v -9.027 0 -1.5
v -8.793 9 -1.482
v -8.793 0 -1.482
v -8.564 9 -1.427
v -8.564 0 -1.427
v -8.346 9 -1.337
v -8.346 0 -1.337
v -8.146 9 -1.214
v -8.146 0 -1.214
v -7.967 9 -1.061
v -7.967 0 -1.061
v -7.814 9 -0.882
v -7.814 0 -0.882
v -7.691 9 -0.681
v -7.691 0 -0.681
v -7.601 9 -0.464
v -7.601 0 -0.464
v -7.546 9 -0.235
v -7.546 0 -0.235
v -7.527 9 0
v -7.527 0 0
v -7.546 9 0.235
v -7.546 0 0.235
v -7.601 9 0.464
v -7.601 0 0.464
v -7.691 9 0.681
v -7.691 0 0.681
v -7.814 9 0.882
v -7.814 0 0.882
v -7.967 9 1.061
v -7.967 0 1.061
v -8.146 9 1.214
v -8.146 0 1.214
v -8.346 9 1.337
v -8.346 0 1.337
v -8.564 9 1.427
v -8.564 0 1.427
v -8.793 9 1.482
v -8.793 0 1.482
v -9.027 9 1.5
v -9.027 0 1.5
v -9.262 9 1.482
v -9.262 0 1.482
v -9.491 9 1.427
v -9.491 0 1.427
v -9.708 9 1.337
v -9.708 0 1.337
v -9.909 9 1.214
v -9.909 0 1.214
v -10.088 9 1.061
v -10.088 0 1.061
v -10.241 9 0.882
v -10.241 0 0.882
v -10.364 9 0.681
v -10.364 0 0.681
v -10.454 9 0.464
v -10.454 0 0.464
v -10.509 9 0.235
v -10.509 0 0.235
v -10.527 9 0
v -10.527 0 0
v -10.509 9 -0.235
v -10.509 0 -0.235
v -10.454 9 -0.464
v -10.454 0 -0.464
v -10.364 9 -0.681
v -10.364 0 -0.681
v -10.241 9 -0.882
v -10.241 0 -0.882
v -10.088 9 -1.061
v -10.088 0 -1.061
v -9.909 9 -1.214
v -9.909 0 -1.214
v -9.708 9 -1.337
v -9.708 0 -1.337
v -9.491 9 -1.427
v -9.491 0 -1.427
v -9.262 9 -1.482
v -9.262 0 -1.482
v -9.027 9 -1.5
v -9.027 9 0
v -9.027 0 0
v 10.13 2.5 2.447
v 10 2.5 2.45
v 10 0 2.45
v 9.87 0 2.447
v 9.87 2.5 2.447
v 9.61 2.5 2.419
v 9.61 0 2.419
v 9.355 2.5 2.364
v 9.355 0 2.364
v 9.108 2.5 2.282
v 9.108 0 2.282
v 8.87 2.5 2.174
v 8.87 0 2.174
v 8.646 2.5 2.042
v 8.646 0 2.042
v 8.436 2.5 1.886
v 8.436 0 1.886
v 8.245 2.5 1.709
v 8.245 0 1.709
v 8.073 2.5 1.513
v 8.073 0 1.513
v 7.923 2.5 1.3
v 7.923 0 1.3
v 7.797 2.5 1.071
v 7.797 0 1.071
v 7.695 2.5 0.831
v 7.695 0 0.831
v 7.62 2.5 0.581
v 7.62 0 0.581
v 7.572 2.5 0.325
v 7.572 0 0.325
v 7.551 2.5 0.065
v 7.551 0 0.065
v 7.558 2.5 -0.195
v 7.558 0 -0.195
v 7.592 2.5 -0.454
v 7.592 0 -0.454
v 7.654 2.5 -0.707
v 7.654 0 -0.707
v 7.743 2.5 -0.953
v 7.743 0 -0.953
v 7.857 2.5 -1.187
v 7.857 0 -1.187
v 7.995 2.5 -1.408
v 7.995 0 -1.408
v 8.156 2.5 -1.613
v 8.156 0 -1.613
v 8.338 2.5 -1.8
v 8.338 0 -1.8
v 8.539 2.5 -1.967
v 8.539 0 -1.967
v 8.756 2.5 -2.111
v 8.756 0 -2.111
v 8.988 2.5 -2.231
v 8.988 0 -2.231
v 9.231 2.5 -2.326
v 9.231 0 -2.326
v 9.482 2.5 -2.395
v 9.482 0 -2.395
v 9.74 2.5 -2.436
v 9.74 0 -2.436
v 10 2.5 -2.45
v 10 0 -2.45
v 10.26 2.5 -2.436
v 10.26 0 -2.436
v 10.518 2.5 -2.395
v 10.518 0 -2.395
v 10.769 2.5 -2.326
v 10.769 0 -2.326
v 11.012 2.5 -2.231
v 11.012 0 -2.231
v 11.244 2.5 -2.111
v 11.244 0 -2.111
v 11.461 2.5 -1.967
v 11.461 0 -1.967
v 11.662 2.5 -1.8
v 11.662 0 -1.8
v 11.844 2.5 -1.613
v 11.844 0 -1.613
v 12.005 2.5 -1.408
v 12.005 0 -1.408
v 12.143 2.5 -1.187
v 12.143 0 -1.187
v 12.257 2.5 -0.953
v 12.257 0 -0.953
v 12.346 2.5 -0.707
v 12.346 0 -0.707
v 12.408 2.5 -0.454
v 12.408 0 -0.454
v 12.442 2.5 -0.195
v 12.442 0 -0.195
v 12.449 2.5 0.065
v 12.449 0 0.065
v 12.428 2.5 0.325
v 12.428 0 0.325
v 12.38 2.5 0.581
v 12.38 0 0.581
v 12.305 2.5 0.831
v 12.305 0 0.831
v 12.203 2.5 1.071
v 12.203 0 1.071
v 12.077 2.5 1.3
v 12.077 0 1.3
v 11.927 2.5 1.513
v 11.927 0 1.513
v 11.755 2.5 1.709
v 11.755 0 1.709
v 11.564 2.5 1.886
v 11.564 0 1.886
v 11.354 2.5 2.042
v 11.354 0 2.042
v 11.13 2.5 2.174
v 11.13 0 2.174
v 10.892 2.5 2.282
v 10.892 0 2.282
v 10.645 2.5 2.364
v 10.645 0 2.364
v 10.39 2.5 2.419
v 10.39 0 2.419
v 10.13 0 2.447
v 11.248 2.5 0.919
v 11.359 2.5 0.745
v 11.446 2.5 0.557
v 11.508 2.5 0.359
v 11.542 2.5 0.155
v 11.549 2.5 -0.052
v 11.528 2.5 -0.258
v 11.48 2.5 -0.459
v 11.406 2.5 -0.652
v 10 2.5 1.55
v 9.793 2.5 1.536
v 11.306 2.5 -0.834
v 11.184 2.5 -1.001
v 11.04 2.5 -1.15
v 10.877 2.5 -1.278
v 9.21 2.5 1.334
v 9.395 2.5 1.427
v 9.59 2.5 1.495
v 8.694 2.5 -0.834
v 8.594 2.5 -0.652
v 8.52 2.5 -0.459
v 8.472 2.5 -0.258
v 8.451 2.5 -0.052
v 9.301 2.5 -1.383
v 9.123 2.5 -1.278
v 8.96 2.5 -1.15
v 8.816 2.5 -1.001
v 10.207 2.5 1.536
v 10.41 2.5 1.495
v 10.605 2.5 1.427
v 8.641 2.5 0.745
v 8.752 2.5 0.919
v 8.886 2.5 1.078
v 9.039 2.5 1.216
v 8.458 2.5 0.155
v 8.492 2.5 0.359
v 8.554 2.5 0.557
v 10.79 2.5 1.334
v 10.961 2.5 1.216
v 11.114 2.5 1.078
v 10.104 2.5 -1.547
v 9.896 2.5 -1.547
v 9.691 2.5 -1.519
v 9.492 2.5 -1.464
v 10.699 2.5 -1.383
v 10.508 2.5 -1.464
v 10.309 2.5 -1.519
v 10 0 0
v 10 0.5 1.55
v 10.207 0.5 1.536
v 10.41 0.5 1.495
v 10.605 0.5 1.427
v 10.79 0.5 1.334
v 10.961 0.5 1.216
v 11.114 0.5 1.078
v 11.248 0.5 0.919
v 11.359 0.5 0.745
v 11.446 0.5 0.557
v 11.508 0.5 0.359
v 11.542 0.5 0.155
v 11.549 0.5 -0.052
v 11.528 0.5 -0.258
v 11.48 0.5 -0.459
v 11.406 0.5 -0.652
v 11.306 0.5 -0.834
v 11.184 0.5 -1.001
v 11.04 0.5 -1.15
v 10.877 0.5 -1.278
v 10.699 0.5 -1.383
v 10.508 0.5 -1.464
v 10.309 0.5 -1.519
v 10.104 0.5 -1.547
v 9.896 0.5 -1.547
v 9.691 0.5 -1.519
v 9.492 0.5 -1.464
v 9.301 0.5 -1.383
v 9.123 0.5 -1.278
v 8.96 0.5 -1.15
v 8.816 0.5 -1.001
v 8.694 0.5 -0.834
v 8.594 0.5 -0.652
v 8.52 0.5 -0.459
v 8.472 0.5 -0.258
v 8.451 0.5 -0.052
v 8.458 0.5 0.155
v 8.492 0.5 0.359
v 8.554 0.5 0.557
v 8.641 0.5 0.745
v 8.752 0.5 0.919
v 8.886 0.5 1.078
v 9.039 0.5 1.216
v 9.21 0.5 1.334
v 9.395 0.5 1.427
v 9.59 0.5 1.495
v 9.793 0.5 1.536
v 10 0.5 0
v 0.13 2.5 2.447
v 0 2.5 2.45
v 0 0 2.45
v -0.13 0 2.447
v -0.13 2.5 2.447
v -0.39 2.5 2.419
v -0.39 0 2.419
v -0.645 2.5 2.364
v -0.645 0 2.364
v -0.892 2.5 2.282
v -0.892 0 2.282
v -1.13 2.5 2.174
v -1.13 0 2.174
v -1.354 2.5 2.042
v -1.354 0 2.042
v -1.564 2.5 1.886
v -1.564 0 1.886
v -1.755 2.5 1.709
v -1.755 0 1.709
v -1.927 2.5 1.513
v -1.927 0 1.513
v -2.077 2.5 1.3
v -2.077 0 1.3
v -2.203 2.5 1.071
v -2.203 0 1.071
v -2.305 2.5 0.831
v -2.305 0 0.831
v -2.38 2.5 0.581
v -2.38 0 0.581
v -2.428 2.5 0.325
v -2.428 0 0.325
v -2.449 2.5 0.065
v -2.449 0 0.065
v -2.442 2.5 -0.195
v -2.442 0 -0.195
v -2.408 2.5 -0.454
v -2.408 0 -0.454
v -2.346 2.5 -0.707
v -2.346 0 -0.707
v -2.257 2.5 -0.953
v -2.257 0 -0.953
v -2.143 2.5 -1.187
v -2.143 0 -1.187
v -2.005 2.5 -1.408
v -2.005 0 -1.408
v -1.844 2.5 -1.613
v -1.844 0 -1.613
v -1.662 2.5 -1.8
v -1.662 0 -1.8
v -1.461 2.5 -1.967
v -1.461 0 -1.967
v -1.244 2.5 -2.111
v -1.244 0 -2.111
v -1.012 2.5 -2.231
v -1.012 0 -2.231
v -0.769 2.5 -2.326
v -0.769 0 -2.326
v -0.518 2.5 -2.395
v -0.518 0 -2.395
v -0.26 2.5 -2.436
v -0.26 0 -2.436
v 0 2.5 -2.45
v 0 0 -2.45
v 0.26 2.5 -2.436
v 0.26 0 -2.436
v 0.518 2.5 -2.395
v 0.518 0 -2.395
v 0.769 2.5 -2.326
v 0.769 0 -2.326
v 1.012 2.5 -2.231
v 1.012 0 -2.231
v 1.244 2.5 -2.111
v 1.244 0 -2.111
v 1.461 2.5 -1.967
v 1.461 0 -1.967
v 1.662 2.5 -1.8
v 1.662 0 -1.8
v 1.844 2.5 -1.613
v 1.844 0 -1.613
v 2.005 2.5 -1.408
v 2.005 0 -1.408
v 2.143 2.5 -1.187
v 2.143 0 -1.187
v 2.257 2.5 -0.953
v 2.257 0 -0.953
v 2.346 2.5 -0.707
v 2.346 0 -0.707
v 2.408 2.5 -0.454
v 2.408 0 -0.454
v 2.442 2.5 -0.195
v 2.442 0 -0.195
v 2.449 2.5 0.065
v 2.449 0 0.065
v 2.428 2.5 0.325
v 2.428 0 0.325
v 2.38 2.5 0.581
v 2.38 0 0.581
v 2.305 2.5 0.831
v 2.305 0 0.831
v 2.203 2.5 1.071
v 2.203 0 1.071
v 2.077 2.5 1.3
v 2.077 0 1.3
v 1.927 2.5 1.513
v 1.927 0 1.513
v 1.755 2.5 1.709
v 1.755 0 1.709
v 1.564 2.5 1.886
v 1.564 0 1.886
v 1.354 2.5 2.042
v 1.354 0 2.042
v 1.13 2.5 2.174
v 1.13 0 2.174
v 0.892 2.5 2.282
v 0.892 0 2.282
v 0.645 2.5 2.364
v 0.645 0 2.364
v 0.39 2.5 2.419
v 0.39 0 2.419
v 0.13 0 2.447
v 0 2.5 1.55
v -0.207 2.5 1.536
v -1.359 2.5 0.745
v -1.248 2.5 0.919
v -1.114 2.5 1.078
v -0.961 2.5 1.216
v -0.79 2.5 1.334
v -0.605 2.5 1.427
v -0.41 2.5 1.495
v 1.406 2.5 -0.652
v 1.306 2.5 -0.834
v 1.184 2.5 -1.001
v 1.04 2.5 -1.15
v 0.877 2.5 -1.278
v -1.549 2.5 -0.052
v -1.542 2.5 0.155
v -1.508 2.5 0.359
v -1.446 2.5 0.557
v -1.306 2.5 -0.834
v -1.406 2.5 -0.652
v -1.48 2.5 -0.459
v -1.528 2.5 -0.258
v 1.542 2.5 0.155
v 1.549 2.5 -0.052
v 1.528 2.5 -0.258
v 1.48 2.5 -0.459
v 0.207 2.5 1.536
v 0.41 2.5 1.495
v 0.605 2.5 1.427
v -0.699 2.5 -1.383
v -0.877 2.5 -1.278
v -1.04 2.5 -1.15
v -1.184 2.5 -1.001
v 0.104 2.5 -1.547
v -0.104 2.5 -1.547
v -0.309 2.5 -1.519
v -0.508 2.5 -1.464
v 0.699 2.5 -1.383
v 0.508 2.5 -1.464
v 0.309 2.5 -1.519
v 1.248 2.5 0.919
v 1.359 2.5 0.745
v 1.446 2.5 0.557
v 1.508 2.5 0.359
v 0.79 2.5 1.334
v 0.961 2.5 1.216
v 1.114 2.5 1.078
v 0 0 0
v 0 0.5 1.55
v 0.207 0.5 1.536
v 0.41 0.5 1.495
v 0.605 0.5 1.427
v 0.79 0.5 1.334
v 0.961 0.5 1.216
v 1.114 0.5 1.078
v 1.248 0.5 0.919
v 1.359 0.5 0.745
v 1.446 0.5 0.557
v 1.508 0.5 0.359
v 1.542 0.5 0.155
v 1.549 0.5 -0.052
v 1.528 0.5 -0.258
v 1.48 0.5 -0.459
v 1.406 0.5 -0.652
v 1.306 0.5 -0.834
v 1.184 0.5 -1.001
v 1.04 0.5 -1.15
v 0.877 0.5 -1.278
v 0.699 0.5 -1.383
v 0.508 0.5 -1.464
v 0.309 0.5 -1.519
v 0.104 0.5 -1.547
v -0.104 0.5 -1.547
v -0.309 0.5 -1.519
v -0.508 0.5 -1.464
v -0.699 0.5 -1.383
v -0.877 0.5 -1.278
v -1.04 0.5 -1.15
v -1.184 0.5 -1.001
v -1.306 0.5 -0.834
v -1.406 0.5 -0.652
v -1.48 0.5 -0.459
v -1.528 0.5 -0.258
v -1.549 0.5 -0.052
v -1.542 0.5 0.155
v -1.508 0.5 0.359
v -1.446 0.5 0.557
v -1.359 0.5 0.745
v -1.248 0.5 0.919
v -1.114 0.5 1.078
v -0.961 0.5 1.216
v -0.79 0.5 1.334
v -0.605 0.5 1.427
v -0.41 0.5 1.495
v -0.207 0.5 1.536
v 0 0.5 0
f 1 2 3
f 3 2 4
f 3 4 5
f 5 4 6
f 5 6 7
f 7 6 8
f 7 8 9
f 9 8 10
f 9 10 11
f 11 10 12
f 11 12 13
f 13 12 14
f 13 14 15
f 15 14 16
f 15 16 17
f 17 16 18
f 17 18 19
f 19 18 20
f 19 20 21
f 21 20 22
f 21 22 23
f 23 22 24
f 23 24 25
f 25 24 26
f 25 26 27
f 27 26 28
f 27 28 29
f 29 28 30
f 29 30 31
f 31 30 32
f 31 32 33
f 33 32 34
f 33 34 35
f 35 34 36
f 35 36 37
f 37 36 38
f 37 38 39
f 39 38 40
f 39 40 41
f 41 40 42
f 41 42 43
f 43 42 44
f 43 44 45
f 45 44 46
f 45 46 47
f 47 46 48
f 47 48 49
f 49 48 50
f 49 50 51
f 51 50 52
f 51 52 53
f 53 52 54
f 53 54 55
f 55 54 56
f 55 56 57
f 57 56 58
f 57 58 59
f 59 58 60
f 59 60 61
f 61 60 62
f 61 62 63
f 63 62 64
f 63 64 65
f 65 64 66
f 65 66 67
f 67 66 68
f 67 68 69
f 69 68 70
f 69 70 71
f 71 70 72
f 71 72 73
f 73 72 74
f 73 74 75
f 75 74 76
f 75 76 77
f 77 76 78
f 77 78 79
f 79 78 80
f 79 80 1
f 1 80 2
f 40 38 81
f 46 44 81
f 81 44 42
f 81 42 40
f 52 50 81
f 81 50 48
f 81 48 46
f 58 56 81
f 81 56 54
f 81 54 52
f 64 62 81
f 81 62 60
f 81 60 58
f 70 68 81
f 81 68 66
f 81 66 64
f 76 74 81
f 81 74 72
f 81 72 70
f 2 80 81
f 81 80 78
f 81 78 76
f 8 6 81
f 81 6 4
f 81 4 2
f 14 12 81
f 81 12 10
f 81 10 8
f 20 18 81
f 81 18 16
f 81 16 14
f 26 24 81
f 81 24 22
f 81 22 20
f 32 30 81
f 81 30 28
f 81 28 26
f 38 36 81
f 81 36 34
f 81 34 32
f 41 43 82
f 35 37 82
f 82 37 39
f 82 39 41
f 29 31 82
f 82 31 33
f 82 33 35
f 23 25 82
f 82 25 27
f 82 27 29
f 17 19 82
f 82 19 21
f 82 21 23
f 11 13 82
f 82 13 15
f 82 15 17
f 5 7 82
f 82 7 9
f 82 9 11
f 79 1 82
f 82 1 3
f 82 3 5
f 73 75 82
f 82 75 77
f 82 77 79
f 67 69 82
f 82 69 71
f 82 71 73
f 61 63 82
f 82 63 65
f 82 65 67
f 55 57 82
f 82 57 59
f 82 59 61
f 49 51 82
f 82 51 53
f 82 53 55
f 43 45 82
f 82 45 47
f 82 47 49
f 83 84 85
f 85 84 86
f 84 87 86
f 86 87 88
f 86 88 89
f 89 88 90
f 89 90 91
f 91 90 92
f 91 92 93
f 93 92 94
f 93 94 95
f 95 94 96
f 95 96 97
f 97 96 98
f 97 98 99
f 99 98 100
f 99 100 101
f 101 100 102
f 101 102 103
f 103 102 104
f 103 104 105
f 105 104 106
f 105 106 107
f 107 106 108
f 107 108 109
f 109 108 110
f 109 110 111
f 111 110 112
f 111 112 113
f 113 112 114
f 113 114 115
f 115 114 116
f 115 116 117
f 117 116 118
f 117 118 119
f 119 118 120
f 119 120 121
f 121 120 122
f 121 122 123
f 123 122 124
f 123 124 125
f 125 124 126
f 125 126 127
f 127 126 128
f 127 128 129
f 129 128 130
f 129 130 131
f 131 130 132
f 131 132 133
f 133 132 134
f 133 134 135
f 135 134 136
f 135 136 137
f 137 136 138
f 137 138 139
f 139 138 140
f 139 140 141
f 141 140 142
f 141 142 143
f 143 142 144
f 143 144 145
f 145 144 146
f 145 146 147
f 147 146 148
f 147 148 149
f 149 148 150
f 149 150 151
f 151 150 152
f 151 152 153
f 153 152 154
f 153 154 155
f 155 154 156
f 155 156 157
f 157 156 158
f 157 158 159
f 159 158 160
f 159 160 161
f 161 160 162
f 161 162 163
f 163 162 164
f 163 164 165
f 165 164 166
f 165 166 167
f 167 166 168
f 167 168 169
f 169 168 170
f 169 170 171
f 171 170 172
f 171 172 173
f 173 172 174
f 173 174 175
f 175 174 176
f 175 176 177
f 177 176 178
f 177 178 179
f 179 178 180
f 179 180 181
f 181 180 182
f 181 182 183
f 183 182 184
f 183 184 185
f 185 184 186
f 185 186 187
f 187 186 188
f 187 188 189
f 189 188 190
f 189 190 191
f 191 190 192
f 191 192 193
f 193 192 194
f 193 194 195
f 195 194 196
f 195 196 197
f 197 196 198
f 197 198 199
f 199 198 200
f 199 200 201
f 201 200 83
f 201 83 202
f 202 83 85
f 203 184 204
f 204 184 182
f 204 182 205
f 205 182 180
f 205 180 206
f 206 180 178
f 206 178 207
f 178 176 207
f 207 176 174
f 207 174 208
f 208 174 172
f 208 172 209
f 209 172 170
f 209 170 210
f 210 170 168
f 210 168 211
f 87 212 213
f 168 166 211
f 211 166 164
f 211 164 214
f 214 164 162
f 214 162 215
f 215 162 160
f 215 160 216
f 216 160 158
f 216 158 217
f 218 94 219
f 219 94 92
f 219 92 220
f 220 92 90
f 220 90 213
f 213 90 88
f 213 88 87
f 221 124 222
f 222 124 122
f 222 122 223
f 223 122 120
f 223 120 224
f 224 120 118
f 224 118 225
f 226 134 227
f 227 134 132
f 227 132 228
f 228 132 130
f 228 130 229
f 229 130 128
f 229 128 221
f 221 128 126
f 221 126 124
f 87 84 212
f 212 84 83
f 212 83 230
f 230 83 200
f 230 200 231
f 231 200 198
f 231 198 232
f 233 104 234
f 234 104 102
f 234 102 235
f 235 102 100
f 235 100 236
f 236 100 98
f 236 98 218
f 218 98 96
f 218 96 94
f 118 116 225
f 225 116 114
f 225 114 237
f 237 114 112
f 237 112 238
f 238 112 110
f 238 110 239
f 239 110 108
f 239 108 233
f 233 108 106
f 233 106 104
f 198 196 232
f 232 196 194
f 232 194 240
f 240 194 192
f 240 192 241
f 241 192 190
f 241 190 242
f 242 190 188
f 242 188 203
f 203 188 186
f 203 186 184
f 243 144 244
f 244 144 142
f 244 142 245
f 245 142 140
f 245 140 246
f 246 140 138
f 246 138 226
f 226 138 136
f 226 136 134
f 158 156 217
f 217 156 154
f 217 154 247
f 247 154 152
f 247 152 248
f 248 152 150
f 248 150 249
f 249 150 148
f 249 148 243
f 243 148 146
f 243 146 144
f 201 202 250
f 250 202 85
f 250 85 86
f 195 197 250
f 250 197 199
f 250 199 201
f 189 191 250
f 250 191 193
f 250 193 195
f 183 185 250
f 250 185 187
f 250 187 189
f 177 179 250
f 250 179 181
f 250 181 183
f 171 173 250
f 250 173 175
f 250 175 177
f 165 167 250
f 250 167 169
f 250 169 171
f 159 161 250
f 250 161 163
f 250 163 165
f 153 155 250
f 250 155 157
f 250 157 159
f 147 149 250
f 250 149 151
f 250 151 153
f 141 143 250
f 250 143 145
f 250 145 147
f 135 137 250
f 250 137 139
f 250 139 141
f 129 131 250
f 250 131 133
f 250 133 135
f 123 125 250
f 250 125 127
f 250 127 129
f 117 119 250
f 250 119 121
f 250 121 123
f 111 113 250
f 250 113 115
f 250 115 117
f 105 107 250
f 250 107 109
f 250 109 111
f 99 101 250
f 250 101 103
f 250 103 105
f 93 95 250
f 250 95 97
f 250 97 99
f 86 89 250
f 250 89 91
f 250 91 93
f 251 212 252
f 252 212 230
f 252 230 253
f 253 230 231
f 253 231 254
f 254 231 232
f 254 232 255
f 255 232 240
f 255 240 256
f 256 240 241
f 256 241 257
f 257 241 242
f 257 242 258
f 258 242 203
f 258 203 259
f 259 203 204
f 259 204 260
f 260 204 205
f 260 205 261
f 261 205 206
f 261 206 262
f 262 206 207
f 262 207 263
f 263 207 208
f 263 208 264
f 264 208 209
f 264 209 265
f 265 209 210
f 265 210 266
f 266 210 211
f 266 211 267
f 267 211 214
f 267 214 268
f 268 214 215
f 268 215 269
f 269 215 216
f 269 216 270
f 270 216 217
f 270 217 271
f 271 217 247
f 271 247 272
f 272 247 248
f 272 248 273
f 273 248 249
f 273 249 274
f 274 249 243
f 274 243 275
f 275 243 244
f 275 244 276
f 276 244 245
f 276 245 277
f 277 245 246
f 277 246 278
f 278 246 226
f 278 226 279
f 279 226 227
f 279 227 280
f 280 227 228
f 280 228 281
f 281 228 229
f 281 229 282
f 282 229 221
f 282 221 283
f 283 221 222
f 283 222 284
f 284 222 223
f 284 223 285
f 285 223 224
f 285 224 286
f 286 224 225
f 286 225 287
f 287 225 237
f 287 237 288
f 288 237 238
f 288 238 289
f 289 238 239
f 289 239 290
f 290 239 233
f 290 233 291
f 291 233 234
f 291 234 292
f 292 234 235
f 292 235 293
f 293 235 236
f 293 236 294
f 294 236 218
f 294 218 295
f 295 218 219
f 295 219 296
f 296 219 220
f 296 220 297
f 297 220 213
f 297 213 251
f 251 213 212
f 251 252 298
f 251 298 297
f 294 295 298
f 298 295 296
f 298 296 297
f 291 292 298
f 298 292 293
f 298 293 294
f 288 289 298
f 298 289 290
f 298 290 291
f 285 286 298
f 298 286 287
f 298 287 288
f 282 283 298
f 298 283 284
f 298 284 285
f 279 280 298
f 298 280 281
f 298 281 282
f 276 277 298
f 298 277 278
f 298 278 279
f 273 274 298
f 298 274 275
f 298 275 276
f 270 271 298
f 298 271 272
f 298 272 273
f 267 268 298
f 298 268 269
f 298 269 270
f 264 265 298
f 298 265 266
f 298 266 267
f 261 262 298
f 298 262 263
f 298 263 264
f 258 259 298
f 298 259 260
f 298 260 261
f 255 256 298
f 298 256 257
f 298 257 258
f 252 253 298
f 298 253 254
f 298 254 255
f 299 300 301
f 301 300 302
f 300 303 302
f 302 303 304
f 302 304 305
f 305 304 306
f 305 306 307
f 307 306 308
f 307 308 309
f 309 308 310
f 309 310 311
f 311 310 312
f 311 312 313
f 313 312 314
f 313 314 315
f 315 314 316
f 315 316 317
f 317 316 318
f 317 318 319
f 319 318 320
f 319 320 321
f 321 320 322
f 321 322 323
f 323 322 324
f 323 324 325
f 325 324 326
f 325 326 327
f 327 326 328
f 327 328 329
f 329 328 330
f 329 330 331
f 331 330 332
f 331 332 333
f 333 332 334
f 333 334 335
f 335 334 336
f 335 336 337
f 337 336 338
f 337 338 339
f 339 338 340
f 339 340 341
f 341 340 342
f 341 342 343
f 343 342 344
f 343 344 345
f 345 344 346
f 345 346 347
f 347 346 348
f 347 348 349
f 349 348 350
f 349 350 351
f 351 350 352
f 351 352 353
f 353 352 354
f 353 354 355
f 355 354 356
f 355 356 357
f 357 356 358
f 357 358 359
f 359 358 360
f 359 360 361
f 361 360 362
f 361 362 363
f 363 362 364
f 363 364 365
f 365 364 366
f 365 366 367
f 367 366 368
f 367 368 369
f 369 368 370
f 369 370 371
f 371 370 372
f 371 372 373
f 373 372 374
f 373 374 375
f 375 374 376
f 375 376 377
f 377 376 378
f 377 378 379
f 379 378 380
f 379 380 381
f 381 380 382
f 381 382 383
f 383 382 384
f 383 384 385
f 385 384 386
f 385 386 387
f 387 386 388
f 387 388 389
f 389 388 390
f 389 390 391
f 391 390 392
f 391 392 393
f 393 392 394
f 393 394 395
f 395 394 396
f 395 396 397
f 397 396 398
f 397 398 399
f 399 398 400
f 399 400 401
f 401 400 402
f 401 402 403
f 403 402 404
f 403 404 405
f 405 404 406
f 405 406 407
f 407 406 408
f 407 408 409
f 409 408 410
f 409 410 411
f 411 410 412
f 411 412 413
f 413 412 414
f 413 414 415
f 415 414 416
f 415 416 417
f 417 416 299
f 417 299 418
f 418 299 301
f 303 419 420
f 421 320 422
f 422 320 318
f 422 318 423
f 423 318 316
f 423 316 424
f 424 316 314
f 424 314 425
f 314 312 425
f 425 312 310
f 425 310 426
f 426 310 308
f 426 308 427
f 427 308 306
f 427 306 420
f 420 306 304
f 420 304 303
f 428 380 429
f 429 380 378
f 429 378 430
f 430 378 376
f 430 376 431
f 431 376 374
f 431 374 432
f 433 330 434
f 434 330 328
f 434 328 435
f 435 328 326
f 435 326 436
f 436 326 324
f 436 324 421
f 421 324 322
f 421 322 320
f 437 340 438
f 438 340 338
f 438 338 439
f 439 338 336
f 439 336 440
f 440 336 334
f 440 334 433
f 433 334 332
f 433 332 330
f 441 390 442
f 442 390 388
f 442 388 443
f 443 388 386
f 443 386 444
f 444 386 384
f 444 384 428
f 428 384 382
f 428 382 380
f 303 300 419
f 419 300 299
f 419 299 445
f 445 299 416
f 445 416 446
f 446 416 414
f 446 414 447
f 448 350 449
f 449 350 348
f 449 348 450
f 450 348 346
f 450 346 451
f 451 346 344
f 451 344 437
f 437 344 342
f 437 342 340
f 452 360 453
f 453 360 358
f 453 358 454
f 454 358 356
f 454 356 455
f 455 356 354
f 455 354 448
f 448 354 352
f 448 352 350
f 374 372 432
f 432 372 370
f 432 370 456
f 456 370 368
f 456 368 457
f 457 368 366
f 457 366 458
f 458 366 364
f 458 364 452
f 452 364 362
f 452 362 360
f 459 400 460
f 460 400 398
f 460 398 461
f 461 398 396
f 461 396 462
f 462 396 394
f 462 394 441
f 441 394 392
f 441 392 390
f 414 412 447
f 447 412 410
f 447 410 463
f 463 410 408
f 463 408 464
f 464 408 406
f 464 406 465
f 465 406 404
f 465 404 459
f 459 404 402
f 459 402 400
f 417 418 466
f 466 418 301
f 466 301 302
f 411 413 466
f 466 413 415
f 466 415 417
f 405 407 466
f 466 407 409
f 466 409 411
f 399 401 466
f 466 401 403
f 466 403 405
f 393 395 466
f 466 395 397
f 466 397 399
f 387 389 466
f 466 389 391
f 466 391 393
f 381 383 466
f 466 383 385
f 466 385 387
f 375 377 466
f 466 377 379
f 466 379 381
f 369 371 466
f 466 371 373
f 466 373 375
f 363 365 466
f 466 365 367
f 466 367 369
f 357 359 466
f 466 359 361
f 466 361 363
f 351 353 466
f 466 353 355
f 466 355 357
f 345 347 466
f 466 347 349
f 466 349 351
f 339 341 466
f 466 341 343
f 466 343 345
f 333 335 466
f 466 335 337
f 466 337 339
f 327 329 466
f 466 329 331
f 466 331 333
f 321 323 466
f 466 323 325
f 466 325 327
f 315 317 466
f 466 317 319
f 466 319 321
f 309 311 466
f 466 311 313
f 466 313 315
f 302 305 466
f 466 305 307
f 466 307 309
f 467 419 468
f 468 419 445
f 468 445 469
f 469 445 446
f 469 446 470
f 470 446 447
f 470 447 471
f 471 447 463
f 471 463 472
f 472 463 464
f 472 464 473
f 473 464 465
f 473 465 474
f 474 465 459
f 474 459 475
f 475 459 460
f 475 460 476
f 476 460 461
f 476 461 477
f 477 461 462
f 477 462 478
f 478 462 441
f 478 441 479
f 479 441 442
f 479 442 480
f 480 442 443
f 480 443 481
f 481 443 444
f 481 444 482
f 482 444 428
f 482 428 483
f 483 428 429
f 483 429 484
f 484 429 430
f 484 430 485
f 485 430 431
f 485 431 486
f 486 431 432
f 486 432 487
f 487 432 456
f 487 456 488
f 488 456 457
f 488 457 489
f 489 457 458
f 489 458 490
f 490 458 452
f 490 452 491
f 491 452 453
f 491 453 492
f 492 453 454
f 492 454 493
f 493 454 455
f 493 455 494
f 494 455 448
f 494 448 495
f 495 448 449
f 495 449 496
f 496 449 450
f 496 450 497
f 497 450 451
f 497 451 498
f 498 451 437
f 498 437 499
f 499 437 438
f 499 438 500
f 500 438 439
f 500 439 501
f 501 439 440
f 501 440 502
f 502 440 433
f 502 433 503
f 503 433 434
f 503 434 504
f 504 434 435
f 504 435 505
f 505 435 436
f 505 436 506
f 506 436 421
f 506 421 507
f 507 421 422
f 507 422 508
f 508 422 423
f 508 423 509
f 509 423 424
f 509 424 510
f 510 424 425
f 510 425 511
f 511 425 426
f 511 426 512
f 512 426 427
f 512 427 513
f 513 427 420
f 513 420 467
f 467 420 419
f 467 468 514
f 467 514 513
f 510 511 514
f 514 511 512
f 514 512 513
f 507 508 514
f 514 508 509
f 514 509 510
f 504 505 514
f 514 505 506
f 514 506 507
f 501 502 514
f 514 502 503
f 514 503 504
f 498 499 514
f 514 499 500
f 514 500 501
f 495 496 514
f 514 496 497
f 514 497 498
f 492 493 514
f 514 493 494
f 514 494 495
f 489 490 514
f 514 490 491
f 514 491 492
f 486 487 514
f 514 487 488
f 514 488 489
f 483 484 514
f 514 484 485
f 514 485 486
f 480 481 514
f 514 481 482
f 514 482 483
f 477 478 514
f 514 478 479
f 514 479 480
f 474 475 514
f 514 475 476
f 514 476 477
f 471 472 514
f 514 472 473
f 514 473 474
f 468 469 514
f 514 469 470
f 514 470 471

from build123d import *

# Parameters (mm, degrees)
SKETCH1_R           = 2.45
BOSS_EXTRUDE1_DEPTH = 2.5
SKETCH2_R           = 1.5
BOSS_EXTRUDE2_DEPTH = 9
SKETCH4_R           = 1.55
CUT_EXTRUDE1_DEPTH  = 2


with BuildPart() as part:
    # Sketch1 → Boss-Extrude1 (new body)
    with BuildSketch(Plane(origin=(0, 0, 0), x_dir=(1, 0, 0), z_dir=(0, 1, 0))):
        with Locations(Location((0, 0, 0), (0, 0, 270))):
            Circle(SKETCH1_R)
    extrude(amount=BOSS_EXTRUDE1_DEPTH)

    # Sketch4 → Cut-Extrude1 (cut)
    with BuildSketch(Plane(origin=(0, 2.5, 0), x_dir=(1, 0, 0), z_dir=(0, 1, 0))):
        with Locations(Location((0, 0, 0), (0, 0, 270))):
            Circle(SKETCH4_R)
    extrude(amount=-CUT_EXTRUDE1_DEPTH, mode=Mode.SUBTRACT)


with BuildPart() as body_2:
    # Sketch2 → Boss-Extrude2 (new body)
    with BuildSketch(Plane(origin=(0, 0, 0), x_dir=(1, 0, 0), z_dir=(0, 1, 0))):
        with Locations(Location((-9.027296586, 0, 0), (0, 0, 270))):
            Circle(SKETCH2_R)
    extrude(amount=BOSS_EXTRUDE2_DEPTH)


with BuildPart() as body_3:
    # Mirror1: mirrored copy
    add(part.part.mirror(Plane(origin=(5, 0, 0), x_dir=(0, 0, 1), z_dir=(1, 0, 0))))


solid = Compound([part.part, body_2.part, body_3.part])
